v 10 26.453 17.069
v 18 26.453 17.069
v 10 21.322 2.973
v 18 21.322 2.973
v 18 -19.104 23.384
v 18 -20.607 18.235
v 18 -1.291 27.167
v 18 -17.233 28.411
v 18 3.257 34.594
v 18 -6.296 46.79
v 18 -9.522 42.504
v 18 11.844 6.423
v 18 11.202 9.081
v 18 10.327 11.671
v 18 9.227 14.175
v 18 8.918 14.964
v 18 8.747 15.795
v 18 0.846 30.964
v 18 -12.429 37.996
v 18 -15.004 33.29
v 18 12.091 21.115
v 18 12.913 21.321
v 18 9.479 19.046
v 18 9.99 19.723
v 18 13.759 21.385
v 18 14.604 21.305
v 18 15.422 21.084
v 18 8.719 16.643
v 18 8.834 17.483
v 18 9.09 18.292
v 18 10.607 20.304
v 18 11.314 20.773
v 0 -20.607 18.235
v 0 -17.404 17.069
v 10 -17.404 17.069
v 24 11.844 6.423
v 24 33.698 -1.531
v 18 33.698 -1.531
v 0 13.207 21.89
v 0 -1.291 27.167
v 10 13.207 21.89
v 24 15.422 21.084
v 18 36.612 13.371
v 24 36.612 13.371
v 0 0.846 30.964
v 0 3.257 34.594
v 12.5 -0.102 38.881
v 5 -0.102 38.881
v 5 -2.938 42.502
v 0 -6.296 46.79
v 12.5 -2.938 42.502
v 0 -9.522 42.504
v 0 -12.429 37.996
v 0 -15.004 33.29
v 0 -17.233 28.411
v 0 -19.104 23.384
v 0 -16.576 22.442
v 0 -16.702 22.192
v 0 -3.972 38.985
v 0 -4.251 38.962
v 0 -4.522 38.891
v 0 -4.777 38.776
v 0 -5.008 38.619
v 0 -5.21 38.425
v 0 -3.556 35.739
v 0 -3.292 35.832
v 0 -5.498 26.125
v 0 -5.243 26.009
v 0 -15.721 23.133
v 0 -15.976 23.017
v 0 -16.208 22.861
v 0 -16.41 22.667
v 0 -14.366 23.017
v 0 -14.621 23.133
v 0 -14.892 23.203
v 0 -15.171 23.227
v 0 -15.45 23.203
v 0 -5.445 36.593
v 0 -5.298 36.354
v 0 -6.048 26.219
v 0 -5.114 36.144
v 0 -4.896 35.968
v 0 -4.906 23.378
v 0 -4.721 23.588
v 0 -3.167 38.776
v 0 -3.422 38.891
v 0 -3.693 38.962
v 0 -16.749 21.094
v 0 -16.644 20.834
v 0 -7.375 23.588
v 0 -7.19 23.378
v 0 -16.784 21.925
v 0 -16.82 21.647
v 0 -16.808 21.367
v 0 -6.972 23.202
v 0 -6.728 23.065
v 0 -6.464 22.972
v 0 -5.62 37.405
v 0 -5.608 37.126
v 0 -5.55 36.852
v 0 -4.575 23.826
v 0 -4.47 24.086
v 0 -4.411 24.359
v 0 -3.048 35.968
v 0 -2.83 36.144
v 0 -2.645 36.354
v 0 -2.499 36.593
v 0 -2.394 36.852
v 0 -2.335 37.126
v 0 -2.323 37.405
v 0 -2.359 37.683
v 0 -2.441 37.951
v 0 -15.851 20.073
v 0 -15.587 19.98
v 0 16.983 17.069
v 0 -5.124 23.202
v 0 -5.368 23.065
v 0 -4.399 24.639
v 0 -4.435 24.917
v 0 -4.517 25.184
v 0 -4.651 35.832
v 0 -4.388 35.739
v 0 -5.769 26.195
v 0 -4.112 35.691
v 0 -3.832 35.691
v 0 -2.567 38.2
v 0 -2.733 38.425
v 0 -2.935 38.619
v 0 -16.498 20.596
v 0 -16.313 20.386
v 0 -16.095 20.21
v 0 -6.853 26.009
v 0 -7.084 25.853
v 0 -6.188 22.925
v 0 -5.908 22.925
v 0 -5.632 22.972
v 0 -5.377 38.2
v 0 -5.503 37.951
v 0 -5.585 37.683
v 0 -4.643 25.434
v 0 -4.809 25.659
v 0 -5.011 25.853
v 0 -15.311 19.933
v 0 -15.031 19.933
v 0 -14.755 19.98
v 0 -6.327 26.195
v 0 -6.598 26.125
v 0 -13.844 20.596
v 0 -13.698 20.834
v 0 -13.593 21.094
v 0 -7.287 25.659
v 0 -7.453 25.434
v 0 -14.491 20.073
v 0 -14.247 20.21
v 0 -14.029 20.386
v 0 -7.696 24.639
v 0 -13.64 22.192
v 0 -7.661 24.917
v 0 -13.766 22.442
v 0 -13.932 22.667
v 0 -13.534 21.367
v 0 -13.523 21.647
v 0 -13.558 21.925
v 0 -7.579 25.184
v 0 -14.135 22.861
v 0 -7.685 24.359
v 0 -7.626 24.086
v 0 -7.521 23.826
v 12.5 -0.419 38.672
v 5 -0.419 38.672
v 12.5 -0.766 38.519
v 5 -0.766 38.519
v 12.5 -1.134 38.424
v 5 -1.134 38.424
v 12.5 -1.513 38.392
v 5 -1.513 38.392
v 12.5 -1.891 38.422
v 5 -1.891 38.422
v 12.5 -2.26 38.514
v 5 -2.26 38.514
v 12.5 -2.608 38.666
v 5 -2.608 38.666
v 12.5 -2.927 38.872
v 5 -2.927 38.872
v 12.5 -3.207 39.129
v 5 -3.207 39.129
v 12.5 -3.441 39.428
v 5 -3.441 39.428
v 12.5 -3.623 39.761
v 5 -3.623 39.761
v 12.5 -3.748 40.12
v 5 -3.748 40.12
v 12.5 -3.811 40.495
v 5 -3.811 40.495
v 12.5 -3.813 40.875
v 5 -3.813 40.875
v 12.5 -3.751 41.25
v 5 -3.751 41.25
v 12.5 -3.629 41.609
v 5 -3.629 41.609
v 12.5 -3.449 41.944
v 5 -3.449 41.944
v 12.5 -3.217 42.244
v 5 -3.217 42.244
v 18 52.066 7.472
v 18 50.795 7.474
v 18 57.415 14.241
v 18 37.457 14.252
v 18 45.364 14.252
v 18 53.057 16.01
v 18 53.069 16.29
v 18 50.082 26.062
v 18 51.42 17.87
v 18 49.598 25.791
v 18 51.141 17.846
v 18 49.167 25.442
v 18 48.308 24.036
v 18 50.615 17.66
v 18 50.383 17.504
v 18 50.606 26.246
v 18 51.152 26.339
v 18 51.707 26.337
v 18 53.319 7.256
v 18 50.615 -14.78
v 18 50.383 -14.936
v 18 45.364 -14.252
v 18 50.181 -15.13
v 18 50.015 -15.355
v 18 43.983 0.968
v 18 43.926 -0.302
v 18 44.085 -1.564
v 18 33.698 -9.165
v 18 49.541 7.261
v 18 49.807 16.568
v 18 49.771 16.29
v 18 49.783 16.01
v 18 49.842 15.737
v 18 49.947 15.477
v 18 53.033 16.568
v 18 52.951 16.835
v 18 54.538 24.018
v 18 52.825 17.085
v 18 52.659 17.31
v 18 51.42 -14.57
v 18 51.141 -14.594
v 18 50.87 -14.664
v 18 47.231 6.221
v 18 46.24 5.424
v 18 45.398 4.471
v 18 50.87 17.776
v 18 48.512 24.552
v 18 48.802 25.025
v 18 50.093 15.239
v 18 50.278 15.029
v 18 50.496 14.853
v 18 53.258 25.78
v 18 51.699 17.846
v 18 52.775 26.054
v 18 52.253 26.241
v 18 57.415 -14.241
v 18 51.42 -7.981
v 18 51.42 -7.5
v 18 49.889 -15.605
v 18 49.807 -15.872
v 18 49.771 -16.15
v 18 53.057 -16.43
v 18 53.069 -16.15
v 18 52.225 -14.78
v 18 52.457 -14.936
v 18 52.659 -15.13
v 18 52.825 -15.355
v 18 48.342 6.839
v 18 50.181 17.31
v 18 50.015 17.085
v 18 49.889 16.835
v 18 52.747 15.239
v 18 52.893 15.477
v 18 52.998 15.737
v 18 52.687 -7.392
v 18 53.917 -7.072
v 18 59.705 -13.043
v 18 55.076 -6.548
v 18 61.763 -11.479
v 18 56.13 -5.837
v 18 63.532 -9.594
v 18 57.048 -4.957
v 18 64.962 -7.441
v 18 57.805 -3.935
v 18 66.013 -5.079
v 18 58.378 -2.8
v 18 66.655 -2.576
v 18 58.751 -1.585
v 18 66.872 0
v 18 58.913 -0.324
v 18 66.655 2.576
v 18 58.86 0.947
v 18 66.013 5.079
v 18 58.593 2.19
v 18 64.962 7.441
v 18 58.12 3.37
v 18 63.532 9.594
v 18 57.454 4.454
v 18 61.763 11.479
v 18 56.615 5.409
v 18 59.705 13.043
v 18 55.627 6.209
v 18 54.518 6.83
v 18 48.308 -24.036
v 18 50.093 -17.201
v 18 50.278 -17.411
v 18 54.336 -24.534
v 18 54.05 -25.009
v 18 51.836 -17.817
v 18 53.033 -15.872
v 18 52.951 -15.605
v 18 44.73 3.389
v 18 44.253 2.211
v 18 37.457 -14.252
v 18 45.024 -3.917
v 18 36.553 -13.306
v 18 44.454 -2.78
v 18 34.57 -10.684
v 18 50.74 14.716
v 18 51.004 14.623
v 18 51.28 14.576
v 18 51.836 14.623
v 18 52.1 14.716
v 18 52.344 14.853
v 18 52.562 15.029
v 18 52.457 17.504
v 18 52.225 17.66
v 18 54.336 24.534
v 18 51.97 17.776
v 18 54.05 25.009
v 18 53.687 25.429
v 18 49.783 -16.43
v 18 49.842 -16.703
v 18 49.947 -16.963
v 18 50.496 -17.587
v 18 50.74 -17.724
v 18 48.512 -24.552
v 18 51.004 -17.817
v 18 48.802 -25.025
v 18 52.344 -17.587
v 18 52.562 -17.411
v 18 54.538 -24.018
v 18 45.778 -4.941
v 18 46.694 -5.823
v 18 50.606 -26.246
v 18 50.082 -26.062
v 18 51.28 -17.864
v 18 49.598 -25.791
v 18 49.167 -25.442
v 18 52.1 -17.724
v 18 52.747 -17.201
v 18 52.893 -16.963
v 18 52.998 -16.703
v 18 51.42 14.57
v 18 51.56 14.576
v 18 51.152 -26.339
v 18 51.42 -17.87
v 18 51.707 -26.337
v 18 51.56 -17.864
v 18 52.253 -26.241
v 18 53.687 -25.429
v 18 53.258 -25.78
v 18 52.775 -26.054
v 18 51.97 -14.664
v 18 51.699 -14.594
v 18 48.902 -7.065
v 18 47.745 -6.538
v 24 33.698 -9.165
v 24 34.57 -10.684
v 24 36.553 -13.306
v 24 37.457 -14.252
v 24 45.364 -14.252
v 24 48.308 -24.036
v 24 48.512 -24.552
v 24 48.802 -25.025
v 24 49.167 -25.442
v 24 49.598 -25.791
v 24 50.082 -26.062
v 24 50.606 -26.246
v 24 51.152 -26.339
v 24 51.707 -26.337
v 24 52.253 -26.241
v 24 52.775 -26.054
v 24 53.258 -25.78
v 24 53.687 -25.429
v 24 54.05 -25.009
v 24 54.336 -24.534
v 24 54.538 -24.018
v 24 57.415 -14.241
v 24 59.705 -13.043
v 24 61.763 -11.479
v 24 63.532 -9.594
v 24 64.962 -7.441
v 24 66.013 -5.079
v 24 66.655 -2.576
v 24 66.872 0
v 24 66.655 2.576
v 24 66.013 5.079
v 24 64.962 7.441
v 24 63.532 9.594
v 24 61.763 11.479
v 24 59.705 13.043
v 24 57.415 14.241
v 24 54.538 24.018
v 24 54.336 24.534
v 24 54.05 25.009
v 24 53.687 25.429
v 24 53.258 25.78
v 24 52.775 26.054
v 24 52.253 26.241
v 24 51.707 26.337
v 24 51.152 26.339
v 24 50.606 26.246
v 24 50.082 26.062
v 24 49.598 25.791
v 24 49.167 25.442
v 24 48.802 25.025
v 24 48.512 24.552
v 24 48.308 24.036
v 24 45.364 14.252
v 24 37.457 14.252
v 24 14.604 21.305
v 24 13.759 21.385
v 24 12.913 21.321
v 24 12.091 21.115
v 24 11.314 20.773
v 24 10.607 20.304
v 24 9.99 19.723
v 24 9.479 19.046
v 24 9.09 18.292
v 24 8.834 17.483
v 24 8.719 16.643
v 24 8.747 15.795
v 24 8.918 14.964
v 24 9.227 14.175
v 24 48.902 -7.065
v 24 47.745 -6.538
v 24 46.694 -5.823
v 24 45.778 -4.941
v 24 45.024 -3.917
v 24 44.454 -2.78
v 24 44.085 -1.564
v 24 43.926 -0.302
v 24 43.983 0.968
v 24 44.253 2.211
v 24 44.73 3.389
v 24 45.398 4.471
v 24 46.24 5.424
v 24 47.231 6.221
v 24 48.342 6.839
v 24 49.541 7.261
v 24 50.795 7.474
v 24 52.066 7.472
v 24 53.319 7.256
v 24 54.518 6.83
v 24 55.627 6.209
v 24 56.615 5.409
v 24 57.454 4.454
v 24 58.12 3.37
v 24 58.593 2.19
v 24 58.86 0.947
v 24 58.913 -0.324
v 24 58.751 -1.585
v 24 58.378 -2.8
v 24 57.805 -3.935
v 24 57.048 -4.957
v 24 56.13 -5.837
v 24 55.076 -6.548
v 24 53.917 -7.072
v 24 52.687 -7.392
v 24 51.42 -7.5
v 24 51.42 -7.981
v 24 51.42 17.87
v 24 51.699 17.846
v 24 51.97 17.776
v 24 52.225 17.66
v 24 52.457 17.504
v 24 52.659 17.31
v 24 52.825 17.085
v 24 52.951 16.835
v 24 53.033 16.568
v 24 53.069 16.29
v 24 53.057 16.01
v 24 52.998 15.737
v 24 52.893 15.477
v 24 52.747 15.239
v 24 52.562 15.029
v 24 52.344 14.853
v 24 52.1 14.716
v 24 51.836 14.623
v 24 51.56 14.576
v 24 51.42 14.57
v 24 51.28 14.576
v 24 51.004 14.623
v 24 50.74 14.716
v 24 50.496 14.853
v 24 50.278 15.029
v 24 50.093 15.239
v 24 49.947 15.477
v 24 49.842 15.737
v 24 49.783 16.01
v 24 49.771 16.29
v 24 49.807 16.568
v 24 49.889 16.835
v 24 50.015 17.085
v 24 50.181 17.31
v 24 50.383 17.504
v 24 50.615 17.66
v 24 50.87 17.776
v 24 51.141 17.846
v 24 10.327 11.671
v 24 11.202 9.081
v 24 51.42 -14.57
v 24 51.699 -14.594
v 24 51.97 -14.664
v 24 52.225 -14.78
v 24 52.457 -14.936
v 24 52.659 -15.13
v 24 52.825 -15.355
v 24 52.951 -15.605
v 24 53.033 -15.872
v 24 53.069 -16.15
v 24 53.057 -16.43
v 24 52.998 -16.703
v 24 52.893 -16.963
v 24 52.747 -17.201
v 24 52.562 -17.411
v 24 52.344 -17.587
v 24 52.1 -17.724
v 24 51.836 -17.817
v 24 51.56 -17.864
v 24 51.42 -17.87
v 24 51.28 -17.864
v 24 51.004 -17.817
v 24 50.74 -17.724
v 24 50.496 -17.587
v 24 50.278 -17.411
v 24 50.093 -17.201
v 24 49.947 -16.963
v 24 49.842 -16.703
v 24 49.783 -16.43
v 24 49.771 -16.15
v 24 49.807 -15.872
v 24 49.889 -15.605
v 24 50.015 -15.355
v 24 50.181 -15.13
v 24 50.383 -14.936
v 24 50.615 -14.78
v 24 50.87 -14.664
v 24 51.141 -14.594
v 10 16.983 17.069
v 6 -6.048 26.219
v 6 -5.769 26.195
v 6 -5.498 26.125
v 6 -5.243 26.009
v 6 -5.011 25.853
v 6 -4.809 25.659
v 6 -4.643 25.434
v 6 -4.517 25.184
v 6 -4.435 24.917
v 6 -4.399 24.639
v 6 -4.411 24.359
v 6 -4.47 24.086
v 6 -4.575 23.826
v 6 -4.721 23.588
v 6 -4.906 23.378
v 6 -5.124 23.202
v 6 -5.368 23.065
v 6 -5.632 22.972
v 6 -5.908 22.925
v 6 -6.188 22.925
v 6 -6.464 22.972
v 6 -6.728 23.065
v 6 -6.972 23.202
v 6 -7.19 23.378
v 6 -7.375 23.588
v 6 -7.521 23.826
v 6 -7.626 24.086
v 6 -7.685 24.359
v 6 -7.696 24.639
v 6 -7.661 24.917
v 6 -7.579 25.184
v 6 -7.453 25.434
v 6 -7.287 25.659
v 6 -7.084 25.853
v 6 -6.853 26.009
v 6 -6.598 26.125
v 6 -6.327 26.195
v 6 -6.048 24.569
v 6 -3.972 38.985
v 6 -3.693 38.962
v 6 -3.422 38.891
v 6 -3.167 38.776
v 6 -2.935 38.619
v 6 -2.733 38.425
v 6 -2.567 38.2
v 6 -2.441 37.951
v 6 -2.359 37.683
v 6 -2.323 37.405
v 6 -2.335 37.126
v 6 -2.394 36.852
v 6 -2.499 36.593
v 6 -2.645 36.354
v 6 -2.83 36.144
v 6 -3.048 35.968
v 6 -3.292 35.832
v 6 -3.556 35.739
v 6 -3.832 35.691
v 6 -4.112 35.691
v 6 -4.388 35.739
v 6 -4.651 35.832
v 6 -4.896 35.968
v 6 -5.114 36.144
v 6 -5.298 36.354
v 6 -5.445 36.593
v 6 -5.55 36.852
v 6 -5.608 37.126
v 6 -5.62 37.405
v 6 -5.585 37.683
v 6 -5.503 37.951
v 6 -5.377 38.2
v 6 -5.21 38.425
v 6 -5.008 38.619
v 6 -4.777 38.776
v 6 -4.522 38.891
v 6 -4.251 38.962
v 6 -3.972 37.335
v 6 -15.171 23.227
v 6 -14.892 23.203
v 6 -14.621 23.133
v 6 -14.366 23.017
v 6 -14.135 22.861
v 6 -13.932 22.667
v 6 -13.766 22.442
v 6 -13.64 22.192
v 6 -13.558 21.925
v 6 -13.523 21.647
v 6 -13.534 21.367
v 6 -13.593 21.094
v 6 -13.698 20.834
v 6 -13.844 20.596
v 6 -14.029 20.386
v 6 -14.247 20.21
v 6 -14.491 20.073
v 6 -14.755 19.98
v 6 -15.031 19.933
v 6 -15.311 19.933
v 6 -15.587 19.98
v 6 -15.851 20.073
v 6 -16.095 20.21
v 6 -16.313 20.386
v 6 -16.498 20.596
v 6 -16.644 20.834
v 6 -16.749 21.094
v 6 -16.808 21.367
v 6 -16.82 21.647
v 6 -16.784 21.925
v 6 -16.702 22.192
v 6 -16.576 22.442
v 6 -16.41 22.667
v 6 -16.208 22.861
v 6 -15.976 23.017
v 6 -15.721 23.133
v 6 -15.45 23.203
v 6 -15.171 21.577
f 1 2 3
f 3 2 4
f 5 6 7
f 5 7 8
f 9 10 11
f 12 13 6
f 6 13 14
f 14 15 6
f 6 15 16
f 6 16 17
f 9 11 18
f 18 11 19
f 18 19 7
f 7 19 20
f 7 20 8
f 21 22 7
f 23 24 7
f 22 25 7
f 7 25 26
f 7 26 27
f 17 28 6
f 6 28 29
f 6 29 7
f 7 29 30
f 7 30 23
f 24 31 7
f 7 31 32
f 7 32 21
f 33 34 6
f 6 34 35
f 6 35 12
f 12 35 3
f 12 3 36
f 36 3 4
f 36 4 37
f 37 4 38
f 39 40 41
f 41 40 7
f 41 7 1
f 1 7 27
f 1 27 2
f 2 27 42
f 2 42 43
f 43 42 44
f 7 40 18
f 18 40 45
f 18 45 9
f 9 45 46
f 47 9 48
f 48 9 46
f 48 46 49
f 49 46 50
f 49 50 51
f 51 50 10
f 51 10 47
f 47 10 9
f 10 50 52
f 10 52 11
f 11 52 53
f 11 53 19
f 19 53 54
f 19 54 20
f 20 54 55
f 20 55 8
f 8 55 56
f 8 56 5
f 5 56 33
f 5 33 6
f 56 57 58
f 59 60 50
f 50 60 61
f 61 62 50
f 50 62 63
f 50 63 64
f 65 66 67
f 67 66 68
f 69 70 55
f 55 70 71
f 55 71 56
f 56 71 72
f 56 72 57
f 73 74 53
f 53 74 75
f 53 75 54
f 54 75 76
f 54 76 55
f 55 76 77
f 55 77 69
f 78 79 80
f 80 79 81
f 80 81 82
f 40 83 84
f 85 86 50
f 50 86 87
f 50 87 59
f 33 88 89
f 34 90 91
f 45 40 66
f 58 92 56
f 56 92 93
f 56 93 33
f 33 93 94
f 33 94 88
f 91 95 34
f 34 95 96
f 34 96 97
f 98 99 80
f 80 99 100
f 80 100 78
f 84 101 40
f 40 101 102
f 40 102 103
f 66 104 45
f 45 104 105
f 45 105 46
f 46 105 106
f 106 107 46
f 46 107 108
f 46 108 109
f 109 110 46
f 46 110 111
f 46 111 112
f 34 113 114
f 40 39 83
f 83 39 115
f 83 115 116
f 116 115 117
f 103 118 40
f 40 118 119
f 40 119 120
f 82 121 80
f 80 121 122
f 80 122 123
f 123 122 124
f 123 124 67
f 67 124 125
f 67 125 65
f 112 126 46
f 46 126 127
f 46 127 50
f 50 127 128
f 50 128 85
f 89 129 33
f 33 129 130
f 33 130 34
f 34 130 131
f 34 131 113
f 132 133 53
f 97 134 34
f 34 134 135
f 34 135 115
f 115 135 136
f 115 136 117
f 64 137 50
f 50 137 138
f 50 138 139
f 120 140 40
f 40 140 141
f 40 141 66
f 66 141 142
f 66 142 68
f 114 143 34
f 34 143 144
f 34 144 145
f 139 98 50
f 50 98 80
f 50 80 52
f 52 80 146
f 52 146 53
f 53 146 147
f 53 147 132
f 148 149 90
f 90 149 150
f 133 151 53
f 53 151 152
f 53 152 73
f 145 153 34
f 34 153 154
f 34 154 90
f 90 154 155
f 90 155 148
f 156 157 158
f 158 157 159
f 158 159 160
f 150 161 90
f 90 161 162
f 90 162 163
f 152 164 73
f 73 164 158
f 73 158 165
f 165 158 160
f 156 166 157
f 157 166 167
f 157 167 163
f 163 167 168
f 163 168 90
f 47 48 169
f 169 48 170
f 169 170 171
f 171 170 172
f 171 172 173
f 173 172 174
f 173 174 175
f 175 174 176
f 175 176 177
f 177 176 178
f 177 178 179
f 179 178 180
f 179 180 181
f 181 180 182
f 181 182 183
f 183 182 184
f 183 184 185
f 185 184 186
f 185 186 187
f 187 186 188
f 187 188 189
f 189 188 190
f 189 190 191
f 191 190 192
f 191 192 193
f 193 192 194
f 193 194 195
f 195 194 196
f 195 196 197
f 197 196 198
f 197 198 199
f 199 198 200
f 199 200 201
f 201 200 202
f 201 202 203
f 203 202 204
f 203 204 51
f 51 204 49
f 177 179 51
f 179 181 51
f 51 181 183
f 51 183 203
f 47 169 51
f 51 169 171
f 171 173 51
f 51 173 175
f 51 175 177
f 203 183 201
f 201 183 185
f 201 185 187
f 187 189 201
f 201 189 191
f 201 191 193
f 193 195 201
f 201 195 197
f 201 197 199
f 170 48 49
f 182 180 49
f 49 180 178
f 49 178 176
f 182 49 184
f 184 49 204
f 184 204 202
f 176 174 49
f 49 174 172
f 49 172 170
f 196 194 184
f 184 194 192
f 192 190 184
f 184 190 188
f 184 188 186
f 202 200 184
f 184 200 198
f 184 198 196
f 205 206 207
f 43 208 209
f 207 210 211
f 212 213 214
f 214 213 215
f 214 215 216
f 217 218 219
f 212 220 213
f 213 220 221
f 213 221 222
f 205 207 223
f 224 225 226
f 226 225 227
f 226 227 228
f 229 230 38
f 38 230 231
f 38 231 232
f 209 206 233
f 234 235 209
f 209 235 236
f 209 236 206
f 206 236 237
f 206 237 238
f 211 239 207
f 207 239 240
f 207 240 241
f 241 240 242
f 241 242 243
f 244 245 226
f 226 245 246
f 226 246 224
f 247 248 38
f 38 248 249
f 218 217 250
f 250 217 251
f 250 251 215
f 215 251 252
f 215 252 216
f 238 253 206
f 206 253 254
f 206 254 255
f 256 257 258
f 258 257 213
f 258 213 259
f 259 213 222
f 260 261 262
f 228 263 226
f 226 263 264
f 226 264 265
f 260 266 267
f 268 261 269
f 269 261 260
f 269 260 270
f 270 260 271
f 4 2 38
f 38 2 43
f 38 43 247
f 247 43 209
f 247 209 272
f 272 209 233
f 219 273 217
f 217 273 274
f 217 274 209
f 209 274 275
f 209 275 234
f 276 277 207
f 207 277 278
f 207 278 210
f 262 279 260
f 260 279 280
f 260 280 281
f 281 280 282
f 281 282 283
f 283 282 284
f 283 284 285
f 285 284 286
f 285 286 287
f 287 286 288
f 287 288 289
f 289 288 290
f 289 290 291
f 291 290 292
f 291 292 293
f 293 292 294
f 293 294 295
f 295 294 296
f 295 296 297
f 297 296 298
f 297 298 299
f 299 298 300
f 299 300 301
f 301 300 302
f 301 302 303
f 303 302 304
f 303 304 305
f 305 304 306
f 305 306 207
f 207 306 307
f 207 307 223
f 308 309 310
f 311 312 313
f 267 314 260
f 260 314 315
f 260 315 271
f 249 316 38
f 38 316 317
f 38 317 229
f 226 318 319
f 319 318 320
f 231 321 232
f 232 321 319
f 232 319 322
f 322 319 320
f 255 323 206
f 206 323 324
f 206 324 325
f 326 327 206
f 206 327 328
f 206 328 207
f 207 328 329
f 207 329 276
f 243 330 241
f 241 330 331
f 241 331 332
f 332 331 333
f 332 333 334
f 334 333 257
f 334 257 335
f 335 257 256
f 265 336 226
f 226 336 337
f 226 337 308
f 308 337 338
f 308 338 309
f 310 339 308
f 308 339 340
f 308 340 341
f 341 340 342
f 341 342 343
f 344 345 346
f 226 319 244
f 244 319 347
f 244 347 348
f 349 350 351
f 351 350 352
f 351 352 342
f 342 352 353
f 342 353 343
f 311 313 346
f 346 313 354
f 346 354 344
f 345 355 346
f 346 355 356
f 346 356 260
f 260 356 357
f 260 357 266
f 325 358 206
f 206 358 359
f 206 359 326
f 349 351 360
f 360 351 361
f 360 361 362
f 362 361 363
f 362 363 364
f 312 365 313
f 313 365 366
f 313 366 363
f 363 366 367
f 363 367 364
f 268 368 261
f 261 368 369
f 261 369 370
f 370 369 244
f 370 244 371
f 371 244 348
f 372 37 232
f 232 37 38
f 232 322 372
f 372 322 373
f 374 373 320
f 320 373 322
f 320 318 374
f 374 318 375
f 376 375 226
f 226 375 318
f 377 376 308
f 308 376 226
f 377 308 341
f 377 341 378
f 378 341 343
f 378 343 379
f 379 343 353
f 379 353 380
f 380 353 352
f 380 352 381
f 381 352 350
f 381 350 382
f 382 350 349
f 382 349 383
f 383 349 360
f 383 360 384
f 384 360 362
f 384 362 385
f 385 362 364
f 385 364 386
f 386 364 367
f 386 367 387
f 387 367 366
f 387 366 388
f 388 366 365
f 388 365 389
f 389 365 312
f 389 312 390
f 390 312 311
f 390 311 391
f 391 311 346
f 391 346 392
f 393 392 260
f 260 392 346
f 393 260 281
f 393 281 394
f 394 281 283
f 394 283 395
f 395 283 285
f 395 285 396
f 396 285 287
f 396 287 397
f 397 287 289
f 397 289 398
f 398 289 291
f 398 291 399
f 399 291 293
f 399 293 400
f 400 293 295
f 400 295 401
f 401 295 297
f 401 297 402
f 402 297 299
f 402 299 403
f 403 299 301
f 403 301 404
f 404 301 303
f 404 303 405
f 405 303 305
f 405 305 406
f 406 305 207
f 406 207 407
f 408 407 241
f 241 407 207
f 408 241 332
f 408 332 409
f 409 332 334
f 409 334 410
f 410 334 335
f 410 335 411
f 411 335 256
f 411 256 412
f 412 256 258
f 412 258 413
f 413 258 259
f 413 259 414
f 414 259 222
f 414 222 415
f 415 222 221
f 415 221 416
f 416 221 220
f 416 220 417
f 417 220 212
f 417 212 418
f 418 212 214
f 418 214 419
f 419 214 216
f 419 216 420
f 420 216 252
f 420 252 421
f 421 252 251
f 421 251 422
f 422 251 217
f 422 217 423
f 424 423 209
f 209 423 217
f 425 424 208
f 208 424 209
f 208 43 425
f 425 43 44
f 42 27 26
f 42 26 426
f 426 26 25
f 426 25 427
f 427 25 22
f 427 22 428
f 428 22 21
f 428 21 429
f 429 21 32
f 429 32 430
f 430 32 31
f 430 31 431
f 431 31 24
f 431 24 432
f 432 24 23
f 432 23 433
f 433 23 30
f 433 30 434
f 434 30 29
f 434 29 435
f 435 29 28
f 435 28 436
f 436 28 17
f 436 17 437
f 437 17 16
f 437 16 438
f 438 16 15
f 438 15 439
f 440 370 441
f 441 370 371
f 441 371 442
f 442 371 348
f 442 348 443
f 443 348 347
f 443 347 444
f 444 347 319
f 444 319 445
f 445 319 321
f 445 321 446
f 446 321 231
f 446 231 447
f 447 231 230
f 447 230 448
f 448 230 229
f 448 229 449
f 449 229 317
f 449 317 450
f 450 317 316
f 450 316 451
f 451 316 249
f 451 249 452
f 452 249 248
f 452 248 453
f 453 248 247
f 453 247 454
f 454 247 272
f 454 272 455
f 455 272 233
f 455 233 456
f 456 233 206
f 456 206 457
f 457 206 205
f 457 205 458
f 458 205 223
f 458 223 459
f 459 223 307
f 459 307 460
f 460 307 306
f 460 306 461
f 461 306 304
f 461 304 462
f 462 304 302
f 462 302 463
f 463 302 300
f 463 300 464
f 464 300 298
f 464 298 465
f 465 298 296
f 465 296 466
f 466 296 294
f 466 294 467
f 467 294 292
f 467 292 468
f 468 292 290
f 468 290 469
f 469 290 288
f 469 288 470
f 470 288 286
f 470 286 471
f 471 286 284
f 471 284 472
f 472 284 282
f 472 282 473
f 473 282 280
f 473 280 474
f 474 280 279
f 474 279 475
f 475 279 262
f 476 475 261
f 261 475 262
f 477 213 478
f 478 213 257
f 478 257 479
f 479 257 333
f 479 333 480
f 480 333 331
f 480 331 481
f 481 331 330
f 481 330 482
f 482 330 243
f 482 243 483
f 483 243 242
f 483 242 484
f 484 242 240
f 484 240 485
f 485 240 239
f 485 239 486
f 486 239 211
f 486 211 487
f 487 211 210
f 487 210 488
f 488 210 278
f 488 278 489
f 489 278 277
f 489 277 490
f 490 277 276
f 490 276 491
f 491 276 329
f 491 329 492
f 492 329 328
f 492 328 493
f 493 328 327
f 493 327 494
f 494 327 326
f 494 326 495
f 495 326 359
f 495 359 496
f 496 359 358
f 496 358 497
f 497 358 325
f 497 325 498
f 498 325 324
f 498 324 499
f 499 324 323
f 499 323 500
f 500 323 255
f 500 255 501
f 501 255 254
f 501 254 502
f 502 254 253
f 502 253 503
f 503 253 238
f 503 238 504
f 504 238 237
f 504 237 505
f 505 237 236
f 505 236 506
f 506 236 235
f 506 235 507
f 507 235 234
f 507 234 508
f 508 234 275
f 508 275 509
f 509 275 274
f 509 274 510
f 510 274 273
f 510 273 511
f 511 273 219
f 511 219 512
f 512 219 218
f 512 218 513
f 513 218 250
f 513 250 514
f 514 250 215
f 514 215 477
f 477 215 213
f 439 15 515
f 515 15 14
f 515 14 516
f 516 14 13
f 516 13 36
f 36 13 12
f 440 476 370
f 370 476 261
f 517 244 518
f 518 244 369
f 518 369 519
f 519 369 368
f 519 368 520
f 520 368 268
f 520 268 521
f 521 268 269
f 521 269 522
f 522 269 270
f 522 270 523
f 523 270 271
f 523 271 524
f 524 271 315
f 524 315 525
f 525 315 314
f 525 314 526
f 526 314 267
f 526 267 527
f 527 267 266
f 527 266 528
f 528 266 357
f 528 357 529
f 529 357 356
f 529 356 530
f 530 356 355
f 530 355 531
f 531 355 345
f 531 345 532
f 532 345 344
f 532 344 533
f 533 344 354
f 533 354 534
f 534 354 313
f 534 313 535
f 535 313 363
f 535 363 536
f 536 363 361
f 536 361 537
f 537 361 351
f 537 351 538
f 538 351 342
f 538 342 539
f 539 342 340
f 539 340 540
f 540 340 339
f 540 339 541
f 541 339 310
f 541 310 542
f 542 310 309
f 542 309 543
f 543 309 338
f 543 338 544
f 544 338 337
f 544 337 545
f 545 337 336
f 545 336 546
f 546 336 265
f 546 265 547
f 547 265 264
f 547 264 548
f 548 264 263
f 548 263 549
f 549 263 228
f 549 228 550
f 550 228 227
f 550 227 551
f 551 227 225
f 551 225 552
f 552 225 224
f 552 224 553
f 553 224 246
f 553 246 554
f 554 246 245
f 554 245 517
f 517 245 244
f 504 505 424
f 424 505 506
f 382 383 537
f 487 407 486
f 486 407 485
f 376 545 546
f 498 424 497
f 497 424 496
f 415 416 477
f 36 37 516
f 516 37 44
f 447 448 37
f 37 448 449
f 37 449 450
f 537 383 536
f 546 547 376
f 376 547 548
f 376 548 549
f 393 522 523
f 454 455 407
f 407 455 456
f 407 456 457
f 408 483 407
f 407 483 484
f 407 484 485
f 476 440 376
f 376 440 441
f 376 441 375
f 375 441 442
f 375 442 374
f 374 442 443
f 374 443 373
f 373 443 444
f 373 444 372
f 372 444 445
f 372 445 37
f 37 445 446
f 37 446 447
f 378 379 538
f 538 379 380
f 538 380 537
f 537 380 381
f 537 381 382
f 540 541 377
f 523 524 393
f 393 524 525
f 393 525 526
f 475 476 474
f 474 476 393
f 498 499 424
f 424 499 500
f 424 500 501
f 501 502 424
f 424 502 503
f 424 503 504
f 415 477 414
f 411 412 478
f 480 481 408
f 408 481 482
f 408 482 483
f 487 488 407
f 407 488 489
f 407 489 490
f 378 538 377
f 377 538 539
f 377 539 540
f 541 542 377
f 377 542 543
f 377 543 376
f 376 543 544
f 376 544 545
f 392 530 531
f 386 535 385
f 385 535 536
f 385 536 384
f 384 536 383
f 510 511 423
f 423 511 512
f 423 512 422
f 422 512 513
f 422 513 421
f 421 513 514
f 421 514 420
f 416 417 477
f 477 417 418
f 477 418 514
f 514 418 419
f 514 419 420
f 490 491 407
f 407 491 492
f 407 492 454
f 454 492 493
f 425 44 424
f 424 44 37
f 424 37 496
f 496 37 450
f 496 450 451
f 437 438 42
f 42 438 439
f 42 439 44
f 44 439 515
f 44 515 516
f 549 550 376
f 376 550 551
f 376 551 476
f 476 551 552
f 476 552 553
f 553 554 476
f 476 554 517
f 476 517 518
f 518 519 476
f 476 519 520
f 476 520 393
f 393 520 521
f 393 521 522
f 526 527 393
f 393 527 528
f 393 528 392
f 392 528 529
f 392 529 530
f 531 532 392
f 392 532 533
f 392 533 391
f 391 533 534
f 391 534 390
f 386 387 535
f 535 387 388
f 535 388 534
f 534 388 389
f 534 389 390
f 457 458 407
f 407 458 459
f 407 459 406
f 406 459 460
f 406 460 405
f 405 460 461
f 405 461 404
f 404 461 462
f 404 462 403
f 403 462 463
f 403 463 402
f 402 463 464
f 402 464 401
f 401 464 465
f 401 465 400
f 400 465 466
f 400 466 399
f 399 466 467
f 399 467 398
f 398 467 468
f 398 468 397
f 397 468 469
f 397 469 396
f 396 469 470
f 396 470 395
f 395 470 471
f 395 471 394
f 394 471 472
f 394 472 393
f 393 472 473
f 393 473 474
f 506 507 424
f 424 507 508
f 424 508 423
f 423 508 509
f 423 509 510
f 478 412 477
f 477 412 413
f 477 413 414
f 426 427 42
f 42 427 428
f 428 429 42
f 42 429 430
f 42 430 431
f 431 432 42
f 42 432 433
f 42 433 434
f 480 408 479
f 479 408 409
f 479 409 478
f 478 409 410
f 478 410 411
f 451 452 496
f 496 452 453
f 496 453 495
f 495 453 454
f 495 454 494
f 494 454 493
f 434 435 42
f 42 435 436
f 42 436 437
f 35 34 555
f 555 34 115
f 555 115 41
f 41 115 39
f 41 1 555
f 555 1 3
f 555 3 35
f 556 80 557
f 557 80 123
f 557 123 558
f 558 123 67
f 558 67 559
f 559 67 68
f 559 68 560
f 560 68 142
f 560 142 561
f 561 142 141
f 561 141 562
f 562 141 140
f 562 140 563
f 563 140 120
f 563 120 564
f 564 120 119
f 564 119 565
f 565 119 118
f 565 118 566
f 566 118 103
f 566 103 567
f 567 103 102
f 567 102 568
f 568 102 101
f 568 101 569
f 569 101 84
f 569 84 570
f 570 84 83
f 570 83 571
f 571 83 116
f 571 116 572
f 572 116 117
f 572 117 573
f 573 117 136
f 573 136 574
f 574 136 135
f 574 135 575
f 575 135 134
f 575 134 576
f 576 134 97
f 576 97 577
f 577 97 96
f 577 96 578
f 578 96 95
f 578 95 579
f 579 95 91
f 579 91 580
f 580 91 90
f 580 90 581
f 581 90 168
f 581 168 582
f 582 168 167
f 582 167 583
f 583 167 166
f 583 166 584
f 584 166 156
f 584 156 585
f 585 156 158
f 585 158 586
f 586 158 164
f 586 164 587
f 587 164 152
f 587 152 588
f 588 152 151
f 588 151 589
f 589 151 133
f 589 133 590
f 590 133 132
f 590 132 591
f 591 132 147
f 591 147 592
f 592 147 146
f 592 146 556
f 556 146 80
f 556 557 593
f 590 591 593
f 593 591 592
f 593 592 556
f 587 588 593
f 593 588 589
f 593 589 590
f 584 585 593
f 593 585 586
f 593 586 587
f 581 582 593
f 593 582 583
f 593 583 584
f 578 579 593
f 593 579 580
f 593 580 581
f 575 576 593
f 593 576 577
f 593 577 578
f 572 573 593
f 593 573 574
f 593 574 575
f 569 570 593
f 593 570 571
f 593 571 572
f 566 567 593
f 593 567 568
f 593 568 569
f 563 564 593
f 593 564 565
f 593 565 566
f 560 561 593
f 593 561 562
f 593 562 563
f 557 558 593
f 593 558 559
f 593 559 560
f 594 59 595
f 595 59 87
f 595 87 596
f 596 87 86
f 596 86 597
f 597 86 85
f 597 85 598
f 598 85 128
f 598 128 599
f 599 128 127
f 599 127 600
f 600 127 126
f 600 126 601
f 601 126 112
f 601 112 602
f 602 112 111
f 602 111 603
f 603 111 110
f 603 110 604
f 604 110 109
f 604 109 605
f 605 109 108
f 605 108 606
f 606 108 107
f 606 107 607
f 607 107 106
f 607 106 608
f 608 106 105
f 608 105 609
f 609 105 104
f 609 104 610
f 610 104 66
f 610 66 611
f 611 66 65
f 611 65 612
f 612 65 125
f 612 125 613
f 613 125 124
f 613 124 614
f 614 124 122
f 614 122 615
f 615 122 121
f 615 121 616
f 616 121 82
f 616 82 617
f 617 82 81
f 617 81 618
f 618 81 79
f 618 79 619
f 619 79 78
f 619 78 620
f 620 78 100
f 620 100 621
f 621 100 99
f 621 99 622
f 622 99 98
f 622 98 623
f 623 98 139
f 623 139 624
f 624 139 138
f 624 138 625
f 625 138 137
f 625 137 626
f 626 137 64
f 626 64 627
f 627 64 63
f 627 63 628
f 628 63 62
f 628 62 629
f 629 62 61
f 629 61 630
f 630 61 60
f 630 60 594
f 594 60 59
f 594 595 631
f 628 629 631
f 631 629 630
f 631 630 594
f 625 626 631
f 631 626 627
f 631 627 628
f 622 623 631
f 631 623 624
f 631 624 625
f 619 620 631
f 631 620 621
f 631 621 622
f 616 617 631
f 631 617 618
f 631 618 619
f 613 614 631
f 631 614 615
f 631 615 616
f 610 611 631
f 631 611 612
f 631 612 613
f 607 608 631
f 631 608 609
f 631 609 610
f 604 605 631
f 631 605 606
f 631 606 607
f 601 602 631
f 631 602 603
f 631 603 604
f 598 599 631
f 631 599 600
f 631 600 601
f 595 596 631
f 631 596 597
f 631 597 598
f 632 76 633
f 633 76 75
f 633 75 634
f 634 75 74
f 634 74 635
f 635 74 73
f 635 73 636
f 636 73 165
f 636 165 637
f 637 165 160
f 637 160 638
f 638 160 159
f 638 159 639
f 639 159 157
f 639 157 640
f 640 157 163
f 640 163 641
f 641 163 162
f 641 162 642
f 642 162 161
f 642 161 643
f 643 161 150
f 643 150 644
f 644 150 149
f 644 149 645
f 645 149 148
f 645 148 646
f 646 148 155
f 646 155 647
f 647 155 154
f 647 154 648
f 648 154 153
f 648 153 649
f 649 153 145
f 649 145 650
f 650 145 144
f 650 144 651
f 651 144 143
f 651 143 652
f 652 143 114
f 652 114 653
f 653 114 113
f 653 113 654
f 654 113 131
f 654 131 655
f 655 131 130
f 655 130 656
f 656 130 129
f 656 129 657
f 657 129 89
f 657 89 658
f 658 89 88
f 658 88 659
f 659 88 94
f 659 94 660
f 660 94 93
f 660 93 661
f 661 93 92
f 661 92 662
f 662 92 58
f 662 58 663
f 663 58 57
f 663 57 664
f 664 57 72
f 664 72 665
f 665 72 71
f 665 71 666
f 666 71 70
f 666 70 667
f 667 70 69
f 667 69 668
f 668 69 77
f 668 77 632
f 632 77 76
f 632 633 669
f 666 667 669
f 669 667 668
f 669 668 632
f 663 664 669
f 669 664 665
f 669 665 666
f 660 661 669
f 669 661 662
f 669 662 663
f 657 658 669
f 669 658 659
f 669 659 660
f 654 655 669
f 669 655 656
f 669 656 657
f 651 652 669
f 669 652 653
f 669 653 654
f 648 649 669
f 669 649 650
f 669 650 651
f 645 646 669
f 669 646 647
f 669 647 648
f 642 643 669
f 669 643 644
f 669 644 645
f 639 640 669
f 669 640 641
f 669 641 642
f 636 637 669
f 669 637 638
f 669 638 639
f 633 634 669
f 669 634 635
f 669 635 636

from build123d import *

# Parameters (mm, degrees)
BOSS_EXTRUDE1_DEPTH     = 5
BOSS_EXTRUDE2_DEPTH     = 13
CUT_EXTRUDE1_START      = -13
SKETCH3_R               = 2.3
CUT_EXTRUDE1_DEPTH      = 7.5
SKETCH4_R               = 1.65
BOSS_EXTRUDE3_DEPTH     = 6
CUT_EXTRUDE2_DEPTH      = 86.071137152
CUT_EXTRUDE2_DEPTH_BACK = 10
SKETCH9_R               = 1.65
CUT_EXTRUDE3_DEPTH      = 6


with BuildPart() as part:
    # Sketch1 → Boss-Extrude1 (new body)
    with BuildSketch(Plane(origin=(0, 0, 0), x_dir=(0, 0, -1), z_dir=(1, 0, 0))):
        with BuildLine():
            Line((-34.593659354, 3.256520294), (-46.7897518, -6.296129983))
            ThreePointArc((-46.7897518, -6.296129983), (-33.290290023, -15.004245976), (-18.234604608, -20.60719958))
            Line((-18.234604608, -20.60719958), (-2.973495544, 21.32235297))
            Line((-2.973495544, 21.32235297), (-17.068884855, 26.45265512))
            Line((-17.068884855, 26.45265512), (-27.166620772, -1.290646299))
            ThreePointArc((-27.166620772, -1.290646299), (-30.963724442, 0.846415848), (-34.593659354, 3.256520294))
        make_face()
    extrude(amount=BOSS_EXTRUDE1_DEPTH)

    # Sketch2 → Boss-Extrude2 (add)
    with BuildSketch(Plane(origin=(5, 0, 0), x_dir=(0, 0, -1), z_dir=(1, 0, 0))):
        with BuildLine():
            Line((-34.593659354, 3.256520294), (-46.7897518, -6.296129983))
            ThreePointArc((-46.7897518, -6.296129983), (-42.613802597, -9.444548196), (-38.226724688, -12.291412509))
            Line((-38.226724688, -12.291412509), (-25.335917908, -2.194623762))
            ThreePointArc((-25.335917908, -2.194623762), (-26.255160174, -1.750514609), (-27.166620772, -1.290646299))
            ThreePointArc((-27.166620772, -1.290646299), (-30.963724442, 0.846415848), (-34.593659354, 3.256520294))
        make_face()
        with BuildLine():
            Line((-25.335917908, -2.194623762), (-38.226724688, -12.291412509))
            ThreePointArc((-38.226724688, -12.291412509), (-28.535215176, -17.181480963), (-18.234604608, -20.60719958))
            Line((-18.234604608, -20.60719958), (-12.16072752, -3.919359432))
            Line((-12.16072752, -3.919359432), (-2.973495544, 21.32235297))
            Line((-2.973495544, 21.32235297), (-17.068884855, 26.45265512))
            Line((-17.068884855, 26.45265512), (-26.256116832, 1.210942718))
            Line((-26.256116832, 1.210942718), (-27.166620772, -1.290646299))
            ThreePointArc((-27.166620772, -1.290646299), (-26.255160174, -1.750514609), (-25.335917908, -2.194623762))
        make_face()
    extrude(amount=BOSS_EXTRUDE2_DEPTH)

    # Sketch3 → Cut-Extrude1 (cut)
    with BuildSketch(Plane(origin=(18, 0, 0), x_dir=(0, 0, -1), z_dir=(1, 0, 0)).offset(CUT_EXTRUDE1_START)):
        with Locations((-40.691705577, -1.519804845)):
            Circle(SKETCH3_R)
    extrude(amount=CUT_EXTRUDE1_DEPTH, mode=Mode.SUBTRACT)

    # Sketch4 → Boss-Extrude3 (add)
    with BuildSketch(Plane(origin=(18, 0, 0), x_dir=(0, 0, -1), z_dir=(1, 0, 0))):
        with BuildLine():
            Line((-13.371212035, 36.611927698), (-21.083585591, 15.422355502))
            ThreePointArc((-21.083585591, 15.422355502), (-19.723042607, 9.989582455), (-14.174598147, 9.227437939))
            ThreePointArc((-14.174598147, 9.227437939), (-10.385594526, 10.792784565), (-6.423166383, 11.844460235))
            Line((-6.423166383, 11.844460235), (1.530859032, 33.697965455))
            Line((1.530859032, 33.697965455), (9.165031814, 33.697965455))
            ThreePointArc((9.165031814, 33.697965455), (9.933965272, 34.117264651), (10.683756157, 34.569905907))
            Line((10.683756157, 34.569905907), (13.30556247, 36.552911383))
            ThreePointArc((13.30556247, 36.552911383), (13.786023096, 36.997313573), (14.25164947, 37.457235089))
            Line((14.25164947, 37.457235089), (14.25164947, 45.3641606))
            Line((14.25164947, 45.3641606), (24.03628358, 48.30778647))
            ThreePointArc((24.03628358, 48.30778647), (26.349985315, 51.429769983), (24.017555191, 54.53778647))
            Line((24.017555191, 54.53778647), (14.241296463, 57.414910041))
            ThreePointArc((14.241296463, 57.414910041), (0, 66.87164947), (-14.241296463, 57.414910041))
            Line((-14.241296463, 57.414910041), (-24.017555191, 54.53778647))
            ThreePointArc((-24.017555191, 54.53778647), (-26.349985315, 51.429769983), (-24.03628358, 48.30778647))
            Line((-24.03628358, 48.30778647), (-14.25164947, 45.3641606))
            Line((-14.25164947, 45.3641606), (-14.25164947, 37.457235089))
            ThreePointArc((-14.25164947, 37.457235089), (-13.817896207, 37.027847242), (-13.371212035, 36.611927698))
        make_face()
        with BuildLine():
            Line((7.5, 51.42), (7.981152097, 51.42))
            Line((7.981152097, 51.42), (7.064819397, 48.902396598))
            ThreePointArc((7.064819397, 48.902396598), (-7.390404098, 52.697469085), (7.5, 51.42))
        make_face(mode=Mode.SUBTRACT)
        with Locations((16.22, 51.42)):
            Circle(SKETCH4_R, mode=Mode.SUBTRACT)
        with Locations((-16.22, 51.42)):
            Circle(SKETCH4_R, mode=Mode.SUBTRACT)
    extrude(amount=BOSS_EXTRUDE3_DEPTH)

    # Sketch8 → Cut-Extrude2 (cut, two sides: drawn at the far end of the back side and taken through both)
    with BuildSketch(Plane.ZY.offset(-CUT_EXTRUDE2_DEPTH_BACK)):
        Polygon((17.068884855, -17.404410883), (17.068884855, 16.982887384), (8.814387371, 23.448263736), (2.973495544, 21.32235297), align=None)
        Polygon((8.814387371, 23.448263736), (17.068884855, 16.982887384), (17.068884855, 26.45265512), align=None)
        Polygon((17.068884855, 16.982887384), (21.890012849, 13.206714822), (17.068884855, 26.45265512), align=None)
    extrude(amount=CUT_EXTRUDE2_DEPTH + CUT_EXTRUDE2_DEPTH_BACK, mode=Mode.SUBTRACT)

    # Sketch9 → Cut-Extrude3 (cut)
    with BuildSketch(Plane.ZY):
        with Locations((24.568884855, -6.047927384)):
            Circle(SKETCH9_R)
        with Locations((37.335347169, -3.97184687)):
            Circle(SKETCH9_R)
        with Locations((21.576904852, -15.17107203)):
            Circle(SKETCH9_R)
    extrude(amount=-CUT_EXTRUDE3_DEPTH, mode=Mode.SUBTRACT)


solid = part.part
